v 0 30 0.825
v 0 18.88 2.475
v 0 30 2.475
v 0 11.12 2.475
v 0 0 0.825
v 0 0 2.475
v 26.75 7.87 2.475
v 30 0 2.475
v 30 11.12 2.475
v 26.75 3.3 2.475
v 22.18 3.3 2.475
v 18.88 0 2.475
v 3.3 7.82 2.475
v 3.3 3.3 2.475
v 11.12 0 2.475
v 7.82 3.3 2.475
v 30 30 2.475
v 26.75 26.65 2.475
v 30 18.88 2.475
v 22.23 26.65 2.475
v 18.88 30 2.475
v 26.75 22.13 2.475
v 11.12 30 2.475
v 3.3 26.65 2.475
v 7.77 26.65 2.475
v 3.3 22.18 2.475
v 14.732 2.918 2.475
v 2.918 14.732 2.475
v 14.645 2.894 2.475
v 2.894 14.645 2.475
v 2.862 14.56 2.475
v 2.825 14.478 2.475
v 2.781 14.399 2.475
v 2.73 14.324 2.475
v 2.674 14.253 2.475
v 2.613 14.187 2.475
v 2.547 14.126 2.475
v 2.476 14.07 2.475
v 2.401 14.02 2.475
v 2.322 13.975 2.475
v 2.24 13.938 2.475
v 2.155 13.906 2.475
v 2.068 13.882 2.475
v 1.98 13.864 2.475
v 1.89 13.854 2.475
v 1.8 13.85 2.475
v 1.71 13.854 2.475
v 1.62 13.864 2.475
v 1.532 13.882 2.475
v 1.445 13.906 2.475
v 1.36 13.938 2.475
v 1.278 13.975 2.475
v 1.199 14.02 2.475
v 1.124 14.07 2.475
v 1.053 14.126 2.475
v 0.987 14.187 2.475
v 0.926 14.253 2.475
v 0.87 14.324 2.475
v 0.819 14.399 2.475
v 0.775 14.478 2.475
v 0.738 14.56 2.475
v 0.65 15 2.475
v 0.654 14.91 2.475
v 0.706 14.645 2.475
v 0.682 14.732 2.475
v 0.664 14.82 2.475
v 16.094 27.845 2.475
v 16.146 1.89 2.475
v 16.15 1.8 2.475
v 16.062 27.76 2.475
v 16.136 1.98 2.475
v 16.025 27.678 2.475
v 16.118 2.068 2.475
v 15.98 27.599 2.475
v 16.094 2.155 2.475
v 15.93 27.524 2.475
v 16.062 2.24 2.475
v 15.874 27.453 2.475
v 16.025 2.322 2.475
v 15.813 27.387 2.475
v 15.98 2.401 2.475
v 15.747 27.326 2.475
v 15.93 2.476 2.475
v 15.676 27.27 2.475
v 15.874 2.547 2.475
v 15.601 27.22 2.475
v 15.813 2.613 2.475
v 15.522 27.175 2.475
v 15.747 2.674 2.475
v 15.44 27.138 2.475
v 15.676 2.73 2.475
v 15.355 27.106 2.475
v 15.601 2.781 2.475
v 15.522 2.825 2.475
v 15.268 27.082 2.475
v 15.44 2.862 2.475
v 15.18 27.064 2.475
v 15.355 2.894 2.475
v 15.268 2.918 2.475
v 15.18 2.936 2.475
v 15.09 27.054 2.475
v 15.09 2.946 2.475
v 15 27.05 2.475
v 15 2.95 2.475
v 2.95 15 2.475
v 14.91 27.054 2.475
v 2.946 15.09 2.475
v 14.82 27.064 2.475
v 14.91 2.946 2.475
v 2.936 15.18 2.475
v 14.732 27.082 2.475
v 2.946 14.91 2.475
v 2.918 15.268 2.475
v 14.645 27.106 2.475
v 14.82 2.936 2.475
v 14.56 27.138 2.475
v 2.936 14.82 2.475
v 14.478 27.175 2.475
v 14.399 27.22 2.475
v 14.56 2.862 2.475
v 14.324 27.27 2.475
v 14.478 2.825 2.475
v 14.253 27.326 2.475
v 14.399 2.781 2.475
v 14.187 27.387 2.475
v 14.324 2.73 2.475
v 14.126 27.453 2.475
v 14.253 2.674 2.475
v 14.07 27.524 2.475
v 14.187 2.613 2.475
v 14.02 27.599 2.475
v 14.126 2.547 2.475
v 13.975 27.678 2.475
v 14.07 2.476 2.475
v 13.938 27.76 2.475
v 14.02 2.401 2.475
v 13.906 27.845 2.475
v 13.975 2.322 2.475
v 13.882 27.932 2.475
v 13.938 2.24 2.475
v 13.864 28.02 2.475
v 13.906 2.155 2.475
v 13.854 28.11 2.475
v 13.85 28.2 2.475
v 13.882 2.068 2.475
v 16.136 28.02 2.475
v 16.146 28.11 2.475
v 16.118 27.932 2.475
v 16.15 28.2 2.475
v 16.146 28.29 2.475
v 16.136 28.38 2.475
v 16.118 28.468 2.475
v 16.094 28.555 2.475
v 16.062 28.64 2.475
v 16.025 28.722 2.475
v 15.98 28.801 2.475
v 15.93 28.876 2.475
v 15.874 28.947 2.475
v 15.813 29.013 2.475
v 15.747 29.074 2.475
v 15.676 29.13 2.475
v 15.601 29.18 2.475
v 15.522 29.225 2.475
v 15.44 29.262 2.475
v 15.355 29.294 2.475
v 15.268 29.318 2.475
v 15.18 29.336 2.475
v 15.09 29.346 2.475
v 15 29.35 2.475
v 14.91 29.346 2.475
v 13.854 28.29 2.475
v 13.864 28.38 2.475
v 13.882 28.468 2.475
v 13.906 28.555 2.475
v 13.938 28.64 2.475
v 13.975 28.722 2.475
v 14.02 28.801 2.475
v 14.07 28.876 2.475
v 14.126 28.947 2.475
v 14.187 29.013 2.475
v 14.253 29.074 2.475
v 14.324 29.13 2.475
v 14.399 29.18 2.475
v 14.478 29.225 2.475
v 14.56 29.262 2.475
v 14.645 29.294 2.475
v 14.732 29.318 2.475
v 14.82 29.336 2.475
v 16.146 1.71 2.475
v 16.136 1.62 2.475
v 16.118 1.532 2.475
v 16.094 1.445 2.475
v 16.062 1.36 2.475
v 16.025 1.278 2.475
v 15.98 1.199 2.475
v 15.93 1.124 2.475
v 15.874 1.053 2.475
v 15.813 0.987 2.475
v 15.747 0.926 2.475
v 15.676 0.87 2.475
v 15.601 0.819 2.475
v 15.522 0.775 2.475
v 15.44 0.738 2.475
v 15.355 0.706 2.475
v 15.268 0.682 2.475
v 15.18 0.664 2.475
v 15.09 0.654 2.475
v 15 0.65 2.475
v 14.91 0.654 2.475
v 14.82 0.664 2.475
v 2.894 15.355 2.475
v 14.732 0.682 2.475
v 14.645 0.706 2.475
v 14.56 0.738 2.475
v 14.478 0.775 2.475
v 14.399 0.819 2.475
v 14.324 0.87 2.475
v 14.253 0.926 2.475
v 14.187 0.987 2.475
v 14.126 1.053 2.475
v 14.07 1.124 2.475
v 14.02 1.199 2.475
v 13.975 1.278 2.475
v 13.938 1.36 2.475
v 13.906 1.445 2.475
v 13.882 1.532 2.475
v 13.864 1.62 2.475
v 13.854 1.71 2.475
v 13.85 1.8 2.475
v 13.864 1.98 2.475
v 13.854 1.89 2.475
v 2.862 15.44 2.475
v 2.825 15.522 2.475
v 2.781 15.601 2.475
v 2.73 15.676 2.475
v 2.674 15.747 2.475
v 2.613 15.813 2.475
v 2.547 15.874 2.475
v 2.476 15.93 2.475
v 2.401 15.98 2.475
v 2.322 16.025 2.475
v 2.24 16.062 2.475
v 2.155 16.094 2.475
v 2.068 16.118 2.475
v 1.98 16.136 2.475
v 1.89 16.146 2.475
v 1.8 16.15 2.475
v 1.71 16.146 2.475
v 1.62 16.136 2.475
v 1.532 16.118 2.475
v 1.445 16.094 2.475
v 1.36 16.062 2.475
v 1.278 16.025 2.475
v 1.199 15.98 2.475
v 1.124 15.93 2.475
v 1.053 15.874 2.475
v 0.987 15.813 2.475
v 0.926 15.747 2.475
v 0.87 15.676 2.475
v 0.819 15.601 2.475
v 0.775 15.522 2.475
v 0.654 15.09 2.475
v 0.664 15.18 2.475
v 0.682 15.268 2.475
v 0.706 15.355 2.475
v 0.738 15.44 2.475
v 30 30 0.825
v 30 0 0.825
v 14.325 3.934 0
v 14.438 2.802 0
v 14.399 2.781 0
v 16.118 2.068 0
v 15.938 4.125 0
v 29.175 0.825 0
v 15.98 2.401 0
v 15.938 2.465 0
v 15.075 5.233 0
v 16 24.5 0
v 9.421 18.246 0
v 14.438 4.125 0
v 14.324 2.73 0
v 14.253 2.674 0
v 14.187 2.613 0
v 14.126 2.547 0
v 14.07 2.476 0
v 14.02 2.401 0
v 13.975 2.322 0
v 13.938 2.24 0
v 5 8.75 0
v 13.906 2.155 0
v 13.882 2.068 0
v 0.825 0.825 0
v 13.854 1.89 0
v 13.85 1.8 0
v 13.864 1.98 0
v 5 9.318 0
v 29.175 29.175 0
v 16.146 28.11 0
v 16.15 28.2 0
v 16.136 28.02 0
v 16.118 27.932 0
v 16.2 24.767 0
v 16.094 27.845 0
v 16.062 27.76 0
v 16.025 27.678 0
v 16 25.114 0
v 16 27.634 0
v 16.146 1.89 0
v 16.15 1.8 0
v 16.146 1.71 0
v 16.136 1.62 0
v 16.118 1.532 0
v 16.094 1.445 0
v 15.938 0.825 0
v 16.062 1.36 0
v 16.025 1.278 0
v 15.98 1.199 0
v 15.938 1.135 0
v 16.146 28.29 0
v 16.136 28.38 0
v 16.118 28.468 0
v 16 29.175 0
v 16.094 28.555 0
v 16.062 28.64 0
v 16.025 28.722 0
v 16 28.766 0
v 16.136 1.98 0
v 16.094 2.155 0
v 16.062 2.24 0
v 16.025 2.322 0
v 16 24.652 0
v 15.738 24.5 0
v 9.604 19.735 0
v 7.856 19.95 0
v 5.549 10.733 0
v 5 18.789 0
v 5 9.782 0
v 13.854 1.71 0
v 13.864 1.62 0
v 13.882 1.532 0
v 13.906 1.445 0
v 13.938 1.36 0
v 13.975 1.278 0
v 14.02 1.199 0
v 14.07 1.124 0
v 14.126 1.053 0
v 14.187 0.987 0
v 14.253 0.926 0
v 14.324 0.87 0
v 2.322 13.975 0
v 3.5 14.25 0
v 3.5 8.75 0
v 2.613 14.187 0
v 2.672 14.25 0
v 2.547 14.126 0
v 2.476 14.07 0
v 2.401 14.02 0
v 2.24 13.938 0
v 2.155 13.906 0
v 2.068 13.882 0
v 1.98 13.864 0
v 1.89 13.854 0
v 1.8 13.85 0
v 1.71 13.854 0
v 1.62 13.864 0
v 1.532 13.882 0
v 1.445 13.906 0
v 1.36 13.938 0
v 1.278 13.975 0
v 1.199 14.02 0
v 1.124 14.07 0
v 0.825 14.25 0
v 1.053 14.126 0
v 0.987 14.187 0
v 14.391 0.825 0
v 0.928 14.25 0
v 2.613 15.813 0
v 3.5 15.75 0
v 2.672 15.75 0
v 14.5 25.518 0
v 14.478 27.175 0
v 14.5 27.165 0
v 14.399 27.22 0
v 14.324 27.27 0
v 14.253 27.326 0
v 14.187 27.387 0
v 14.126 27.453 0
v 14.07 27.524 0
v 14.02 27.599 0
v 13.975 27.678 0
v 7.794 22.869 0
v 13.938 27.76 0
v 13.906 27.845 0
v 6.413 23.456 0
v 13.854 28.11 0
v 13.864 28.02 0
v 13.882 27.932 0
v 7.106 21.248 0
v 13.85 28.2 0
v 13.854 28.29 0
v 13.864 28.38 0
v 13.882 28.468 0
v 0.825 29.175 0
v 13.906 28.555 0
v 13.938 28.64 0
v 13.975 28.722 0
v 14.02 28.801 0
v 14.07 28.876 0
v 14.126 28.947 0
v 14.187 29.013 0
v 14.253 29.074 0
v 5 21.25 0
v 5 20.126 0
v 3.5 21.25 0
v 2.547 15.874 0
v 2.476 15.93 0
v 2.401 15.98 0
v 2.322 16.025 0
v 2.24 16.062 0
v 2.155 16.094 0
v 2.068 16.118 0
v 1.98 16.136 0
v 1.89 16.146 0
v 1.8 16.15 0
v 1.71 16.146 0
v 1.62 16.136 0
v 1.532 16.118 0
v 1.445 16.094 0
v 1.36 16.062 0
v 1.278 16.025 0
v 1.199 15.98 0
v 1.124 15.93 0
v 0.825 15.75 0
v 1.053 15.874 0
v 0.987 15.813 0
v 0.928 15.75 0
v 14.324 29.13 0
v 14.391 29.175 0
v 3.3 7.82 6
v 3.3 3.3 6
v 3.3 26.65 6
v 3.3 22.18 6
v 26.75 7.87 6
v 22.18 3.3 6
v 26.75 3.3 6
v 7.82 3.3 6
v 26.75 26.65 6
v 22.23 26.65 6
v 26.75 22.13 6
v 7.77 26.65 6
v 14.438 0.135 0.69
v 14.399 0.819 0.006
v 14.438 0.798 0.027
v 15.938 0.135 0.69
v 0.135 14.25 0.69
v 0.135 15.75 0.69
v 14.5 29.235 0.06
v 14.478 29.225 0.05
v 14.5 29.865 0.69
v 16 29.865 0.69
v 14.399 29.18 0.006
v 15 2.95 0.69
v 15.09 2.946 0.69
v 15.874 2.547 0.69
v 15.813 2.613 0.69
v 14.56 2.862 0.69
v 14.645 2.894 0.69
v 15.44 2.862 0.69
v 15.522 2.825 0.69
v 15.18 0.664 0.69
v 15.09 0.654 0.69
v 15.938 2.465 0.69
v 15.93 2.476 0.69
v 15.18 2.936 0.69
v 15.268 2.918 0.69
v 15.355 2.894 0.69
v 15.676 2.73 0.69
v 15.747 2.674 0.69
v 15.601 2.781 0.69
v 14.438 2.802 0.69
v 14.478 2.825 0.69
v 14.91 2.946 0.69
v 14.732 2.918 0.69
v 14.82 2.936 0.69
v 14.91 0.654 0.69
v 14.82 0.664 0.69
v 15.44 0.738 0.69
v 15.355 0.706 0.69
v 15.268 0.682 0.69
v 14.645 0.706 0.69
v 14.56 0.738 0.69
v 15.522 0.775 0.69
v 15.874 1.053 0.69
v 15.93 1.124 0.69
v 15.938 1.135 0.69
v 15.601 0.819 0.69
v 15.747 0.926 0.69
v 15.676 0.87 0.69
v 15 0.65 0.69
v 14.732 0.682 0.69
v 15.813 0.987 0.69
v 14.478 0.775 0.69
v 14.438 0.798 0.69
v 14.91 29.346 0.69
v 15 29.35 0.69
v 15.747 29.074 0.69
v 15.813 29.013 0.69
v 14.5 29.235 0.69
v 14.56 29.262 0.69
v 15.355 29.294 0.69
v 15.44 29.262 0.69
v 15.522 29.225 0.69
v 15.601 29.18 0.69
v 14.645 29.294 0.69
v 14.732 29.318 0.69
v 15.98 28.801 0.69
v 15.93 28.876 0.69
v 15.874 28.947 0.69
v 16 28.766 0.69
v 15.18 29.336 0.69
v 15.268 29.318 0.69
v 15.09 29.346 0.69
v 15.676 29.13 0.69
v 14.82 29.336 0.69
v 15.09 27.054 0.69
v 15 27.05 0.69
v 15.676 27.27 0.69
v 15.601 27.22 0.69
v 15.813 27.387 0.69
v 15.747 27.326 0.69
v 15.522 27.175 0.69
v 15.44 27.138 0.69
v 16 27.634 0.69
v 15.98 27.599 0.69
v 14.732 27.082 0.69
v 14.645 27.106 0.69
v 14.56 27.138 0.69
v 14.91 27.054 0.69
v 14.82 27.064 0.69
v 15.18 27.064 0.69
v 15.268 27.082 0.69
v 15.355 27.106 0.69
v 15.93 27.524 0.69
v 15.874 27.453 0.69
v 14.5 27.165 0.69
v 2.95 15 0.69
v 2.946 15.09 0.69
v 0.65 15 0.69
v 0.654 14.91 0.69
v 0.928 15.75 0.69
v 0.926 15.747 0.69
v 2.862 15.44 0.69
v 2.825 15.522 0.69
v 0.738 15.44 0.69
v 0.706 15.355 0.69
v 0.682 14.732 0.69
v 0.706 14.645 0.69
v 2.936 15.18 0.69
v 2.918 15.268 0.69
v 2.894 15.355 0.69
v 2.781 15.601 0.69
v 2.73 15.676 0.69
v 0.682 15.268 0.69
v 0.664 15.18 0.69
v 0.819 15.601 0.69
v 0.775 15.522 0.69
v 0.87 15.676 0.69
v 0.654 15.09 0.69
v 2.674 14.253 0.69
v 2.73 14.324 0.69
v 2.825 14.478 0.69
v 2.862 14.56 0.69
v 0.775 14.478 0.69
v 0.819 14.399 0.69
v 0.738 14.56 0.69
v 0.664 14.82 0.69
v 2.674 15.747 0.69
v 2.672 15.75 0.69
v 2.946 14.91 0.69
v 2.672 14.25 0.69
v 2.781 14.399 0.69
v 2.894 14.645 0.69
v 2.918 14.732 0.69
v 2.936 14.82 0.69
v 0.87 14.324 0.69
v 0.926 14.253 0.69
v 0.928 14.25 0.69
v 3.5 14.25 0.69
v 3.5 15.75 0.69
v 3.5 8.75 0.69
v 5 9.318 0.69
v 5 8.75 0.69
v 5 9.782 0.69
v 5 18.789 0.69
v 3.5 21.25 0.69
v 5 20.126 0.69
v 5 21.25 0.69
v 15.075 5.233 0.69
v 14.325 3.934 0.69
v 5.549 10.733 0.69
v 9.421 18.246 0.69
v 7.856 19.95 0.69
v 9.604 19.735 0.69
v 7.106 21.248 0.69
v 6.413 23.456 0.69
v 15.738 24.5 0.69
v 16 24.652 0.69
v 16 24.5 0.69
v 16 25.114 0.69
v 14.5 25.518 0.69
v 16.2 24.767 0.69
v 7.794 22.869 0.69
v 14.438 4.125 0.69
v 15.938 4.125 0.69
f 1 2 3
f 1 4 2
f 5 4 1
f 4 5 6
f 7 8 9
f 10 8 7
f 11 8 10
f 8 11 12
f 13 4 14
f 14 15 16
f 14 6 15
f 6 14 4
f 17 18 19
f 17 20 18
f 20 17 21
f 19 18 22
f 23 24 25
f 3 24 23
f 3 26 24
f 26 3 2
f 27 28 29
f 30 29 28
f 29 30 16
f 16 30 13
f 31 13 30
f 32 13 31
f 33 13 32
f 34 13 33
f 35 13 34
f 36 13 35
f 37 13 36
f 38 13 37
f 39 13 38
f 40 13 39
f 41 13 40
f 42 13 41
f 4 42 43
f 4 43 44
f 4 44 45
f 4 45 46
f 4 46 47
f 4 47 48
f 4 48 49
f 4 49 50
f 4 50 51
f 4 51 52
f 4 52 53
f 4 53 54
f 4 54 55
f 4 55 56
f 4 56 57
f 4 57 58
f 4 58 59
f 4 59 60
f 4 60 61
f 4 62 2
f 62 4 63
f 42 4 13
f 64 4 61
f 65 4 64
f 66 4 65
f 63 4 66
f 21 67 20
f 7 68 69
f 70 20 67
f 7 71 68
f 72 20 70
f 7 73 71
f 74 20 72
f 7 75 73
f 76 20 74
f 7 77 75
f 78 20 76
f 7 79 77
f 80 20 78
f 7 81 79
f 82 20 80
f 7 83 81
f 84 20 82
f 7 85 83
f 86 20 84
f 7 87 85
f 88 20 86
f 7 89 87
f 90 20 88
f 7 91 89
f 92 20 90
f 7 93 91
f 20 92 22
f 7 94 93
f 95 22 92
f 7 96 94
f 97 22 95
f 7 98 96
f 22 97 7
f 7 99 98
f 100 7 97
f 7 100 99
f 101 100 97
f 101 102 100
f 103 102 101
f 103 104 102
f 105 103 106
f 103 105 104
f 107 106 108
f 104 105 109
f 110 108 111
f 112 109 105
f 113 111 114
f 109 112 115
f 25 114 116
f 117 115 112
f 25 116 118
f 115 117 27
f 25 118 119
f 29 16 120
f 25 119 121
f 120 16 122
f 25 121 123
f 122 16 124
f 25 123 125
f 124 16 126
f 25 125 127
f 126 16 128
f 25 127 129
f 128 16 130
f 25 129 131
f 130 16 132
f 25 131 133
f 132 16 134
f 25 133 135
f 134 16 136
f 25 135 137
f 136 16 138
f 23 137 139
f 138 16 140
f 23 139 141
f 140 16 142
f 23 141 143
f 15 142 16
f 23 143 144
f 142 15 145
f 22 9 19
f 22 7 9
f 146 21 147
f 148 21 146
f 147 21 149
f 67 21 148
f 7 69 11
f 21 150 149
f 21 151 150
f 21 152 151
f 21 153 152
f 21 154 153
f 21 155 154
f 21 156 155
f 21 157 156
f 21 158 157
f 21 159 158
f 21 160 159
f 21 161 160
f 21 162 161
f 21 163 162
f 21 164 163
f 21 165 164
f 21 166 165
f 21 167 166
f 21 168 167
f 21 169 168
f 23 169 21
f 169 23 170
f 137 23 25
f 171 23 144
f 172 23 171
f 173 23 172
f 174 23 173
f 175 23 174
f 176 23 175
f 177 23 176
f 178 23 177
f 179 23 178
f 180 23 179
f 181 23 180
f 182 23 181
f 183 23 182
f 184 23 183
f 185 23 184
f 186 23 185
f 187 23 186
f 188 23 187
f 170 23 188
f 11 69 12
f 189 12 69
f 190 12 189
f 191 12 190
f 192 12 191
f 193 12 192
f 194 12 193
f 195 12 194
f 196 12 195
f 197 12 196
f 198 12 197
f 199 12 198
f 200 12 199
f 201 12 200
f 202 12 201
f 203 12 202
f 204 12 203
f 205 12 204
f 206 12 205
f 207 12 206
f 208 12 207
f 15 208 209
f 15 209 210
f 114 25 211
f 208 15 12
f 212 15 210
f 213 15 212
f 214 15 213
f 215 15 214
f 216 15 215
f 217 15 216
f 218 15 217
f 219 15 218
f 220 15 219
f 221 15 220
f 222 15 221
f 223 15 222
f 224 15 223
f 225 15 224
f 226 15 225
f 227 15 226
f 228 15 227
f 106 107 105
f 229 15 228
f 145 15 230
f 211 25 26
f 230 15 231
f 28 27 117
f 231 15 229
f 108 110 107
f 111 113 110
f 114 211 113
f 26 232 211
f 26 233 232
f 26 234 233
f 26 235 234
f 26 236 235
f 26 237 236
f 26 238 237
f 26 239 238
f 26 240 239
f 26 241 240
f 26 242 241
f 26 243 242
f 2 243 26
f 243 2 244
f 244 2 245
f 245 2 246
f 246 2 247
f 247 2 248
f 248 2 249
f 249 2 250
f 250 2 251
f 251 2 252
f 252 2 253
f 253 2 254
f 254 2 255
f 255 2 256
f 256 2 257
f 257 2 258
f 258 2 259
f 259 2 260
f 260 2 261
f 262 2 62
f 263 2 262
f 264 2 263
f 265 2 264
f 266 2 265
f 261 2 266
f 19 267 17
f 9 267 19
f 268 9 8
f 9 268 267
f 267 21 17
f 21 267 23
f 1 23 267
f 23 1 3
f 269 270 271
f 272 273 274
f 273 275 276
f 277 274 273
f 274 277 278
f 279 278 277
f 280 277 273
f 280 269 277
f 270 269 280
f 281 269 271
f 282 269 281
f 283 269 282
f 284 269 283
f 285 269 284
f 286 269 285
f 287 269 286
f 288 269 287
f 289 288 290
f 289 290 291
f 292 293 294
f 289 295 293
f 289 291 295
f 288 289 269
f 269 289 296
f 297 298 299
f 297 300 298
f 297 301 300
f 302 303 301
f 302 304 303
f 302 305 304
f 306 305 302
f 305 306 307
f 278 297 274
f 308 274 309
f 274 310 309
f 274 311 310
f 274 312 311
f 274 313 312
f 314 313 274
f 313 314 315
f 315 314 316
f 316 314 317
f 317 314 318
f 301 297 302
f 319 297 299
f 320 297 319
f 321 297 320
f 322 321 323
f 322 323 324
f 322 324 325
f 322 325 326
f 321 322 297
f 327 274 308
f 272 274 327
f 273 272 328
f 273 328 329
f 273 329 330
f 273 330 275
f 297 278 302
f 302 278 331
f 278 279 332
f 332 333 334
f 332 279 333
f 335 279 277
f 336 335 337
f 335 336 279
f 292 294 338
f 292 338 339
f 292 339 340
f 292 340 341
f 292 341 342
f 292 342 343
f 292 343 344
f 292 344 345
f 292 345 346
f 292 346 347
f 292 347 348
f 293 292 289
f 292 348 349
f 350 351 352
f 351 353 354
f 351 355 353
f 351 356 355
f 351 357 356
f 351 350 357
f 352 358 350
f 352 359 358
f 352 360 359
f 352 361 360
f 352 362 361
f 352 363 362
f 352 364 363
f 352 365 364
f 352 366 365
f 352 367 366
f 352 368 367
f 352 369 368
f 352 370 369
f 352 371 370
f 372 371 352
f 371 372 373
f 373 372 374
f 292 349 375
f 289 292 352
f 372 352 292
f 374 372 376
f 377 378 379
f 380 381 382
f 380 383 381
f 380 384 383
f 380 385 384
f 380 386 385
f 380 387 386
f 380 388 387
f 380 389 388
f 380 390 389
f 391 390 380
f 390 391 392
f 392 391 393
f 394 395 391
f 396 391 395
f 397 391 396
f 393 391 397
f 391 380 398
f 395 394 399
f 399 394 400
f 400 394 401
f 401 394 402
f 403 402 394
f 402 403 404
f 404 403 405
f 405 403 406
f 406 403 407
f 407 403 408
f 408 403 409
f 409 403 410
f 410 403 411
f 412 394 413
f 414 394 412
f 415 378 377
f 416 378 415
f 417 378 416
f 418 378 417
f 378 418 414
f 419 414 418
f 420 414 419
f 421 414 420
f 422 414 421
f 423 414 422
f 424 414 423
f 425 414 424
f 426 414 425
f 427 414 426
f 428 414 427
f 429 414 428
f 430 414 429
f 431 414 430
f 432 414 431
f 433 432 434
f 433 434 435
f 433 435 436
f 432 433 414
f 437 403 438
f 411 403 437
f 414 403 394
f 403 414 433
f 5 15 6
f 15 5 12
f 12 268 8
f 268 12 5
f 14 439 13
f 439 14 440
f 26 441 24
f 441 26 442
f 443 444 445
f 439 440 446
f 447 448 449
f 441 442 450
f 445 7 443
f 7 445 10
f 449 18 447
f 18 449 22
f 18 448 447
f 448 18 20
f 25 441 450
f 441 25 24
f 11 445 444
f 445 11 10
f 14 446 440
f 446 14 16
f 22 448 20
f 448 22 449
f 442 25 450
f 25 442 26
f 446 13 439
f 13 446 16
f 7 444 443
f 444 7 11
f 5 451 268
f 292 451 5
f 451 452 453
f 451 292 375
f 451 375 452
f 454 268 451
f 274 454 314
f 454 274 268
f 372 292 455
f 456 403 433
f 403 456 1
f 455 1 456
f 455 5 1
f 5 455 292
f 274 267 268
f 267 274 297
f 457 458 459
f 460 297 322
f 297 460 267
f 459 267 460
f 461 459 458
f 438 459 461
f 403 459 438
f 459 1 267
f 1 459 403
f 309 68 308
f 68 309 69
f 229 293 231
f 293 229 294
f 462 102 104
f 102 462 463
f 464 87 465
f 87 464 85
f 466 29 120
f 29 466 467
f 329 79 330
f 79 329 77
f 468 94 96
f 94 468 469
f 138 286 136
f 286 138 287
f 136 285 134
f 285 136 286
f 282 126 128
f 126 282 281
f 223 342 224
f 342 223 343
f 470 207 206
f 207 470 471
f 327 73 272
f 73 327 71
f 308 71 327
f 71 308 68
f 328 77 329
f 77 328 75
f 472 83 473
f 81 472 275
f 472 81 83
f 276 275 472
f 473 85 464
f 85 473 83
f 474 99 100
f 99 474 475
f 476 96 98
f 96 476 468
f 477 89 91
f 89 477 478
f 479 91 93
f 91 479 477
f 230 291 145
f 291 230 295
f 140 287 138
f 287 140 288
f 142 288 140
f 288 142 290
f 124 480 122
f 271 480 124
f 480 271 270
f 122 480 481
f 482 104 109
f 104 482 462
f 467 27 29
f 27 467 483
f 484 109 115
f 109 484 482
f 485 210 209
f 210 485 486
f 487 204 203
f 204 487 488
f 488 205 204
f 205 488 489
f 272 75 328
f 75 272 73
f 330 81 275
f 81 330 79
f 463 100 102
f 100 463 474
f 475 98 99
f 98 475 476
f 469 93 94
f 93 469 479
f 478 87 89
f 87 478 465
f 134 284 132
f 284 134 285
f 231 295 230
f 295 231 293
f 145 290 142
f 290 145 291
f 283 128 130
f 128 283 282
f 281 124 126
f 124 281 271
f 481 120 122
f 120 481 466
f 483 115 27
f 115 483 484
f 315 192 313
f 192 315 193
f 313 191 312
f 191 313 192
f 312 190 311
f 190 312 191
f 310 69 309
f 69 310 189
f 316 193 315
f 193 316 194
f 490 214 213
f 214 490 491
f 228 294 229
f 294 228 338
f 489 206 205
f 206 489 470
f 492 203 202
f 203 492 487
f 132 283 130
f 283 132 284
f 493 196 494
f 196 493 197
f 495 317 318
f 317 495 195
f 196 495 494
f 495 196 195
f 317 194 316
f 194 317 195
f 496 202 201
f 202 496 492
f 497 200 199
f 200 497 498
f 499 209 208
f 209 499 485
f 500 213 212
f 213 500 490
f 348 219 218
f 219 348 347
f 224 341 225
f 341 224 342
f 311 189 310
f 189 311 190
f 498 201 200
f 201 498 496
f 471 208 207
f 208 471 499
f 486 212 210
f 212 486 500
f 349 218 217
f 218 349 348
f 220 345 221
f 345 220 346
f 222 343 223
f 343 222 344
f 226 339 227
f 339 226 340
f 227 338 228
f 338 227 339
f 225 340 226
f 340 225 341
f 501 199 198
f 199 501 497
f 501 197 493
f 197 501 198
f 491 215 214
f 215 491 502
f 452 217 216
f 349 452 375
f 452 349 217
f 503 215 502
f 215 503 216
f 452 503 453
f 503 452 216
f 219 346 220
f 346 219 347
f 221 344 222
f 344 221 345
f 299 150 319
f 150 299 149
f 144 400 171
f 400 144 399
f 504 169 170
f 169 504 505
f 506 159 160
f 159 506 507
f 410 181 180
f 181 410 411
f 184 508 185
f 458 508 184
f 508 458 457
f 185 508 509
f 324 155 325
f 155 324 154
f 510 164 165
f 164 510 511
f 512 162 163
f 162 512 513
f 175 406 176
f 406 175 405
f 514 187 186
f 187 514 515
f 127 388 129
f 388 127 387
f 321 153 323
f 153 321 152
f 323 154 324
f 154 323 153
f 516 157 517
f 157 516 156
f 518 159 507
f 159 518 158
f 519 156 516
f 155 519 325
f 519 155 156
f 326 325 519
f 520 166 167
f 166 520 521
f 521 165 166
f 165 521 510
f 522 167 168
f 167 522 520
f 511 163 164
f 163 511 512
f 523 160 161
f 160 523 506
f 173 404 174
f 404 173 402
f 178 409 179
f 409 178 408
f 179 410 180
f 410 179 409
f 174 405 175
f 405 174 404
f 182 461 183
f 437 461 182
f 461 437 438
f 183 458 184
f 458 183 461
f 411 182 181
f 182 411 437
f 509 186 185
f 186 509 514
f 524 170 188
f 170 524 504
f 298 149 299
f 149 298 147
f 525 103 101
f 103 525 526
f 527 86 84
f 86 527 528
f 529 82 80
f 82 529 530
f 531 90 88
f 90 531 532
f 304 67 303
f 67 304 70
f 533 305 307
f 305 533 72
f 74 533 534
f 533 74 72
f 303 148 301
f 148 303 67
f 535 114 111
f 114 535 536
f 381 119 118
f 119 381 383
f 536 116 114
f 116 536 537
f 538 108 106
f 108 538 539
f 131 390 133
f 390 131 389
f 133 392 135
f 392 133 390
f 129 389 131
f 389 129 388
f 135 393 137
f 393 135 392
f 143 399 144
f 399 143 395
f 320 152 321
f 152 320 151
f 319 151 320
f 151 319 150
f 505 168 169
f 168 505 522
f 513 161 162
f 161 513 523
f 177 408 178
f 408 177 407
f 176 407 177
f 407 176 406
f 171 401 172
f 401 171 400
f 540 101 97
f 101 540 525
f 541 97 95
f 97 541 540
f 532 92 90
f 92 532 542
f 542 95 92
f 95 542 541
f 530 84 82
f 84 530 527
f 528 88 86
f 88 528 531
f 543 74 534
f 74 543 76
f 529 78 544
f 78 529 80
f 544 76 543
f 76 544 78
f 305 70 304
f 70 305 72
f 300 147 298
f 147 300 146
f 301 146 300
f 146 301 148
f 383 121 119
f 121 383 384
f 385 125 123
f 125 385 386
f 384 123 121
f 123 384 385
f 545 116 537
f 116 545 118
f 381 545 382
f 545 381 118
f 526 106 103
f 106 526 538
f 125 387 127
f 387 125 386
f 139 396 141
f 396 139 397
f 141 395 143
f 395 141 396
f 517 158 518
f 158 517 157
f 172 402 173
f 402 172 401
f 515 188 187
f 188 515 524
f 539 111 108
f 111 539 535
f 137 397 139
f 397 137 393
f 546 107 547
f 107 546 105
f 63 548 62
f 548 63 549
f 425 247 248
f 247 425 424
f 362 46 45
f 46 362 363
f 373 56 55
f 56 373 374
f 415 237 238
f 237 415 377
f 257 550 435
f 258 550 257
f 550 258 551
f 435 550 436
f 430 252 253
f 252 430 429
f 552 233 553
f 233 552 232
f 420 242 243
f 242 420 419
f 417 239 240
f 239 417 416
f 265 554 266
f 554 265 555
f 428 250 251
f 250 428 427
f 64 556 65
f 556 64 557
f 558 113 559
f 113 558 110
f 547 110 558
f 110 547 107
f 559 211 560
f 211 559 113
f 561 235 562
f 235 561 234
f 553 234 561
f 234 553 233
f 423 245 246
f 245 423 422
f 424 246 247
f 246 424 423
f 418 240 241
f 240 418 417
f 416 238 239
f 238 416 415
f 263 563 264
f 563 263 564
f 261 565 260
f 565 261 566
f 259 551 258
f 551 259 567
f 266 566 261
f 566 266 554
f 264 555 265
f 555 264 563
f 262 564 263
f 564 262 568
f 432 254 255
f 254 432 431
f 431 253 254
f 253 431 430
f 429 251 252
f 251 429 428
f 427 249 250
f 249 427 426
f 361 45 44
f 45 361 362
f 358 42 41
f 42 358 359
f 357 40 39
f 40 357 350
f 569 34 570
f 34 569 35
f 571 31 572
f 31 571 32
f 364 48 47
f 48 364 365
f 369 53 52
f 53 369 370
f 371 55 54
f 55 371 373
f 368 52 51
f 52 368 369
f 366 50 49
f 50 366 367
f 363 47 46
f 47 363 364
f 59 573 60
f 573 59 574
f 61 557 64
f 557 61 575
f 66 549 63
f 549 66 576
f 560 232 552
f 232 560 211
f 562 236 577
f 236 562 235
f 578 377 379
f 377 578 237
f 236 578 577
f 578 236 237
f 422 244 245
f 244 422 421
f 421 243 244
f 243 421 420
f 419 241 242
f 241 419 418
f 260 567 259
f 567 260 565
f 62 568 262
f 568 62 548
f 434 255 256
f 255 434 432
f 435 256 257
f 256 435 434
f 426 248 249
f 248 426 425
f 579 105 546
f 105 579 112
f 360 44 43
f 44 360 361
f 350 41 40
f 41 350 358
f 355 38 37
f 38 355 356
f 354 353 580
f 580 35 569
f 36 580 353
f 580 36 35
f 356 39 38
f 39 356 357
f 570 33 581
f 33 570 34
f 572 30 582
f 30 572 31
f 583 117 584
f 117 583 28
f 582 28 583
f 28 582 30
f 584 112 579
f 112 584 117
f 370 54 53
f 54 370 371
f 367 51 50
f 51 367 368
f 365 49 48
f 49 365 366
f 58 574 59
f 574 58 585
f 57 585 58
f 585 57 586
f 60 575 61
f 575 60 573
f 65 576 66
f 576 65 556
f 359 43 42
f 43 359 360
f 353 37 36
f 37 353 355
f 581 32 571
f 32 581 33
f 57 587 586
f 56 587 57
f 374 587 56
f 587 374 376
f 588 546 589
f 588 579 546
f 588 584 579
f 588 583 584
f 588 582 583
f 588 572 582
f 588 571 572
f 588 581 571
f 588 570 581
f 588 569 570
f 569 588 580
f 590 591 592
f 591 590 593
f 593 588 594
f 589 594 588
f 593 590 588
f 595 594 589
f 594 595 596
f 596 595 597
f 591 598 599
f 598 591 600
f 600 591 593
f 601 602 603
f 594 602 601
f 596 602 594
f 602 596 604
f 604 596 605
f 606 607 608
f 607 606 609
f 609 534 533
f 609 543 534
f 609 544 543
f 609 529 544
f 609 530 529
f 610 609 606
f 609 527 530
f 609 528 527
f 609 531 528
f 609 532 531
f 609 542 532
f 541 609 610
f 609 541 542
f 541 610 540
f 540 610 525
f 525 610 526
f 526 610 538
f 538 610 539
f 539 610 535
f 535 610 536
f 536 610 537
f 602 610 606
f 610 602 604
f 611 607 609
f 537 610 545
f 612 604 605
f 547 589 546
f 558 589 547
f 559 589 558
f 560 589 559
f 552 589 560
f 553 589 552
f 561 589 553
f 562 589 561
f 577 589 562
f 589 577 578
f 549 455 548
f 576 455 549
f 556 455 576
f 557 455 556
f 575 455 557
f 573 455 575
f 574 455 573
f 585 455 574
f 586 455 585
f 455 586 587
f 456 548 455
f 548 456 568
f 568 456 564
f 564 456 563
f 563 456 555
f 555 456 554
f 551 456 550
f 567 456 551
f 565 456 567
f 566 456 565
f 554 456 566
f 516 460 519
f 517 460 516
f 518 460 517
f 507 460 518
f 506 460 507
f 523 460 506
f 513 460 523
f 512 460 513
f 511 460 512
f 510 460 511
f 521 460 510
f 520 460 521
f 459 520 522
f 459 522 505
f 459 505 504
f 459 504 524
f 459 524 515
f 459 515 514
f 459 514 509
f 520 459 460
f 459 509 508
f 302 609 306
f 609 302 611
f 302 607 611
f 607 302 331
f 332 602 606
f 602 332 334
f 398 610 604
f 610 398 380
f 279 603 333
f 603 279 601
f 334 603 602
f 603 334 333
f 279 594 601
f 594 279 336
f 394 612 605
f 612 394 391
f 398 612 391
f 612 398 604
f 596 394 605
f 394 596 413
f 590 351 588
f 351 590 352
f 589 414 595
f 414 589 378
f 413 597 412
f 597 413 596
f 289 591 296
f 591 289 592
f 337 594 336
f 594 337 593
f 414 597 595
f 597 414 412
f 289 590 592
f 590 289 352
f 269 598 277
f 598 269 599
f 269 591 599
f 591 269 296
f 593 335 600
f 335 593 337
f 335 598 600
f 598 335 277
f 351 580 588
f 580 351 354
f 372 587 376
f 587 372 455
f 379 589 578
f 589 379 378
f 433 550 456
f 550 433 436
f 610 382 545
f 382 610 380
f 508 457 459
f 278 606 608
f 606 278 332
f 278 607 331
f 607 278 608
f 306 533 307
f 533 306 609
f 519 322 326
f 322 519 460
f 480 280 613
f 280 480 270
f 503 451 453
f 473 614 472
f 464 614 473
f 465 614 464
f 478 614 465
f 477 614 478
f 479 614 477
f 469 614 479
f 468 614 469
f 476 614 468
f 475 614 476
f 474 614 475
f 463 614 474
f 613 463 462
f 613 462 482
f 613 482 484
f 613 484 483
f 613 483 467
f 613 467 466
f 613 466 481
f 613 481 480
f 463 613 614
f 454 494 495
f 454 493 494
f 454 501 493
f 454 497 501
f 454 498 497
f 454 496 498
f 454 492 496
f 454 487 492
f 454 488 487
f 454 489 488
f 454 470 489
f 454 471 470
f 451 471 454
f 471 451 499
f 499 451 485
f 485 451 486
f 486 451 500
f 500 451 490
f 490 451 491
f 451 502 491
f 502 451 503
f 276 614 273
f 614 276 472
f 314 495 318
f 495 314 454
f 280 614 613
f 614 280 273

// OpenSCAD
// file: sym_arrow.scad
module arrow(thickness, length, size, height)
{
    translate([thickness,-thickness/2])cube([length-thickness, thickness, height]);
    rotate([0,0,37])translate([0,-3*thickness/4])cube([size, thickness, height]);
    rotate([0,0,-37])translate([0,-thickness/4])cube([size, thickness, height]);
}
// file: sym_ring.scad
module ring(radius, thickness, height)
{
    difference()
    {
        cylinder(r=radius, h=height, $fn=64);
        translate([0,0,-thickness/2])cylinder(r=(radius-thickness), h=(height+thickness), $fn=64);
    }
}

ring(30, 1, 1);
// file: settings.scad
cube_width=30;
cube_height=16;
cube_thickness=3.3;

cap_width=30;
cap_height=6;
cap_thickness=3.3;

glyph_depth=0.7;
glyph_thickness=1.5;

photo_resitor_hole_r = 3.1;
spring_contact_hole_r = 3.35;
// file: sym_transistor_pnp.scad
use <sym_ring.scad>
use <sym_arrow.scad>
use <sym_ring.scad>

module transistor_pnp(diameter, thickness, height)
{
    //ring(0.5*diameter, thickness, height);
    
    //base
    translate([-diameter/4, -diameter/4, 0]) cube([thickness, diameter/2, height]);
    
    //emitter
    translate([-diameter/4+thickness, -diameter/6, 0])rotate([0,0,-30])arrow(thickness, diameter/2, 3*thickness, height);
    
    //collector
    //translate([1.6*diameter/8, diameter/2.5, 0])rotate([0,0,-150])arrow(thickness, 4*diameter/8, 0, height);
    translate([-diameter/4+thickness/4, diameter/6, 0])rotate([0,0, 30])arrow(thickness, 4*diameter/8, 0, height);
    
    //base wire
    translate([-diameter/4+thickness, 0,0]) rotate([0,0,180])arrow(thickness, diameter/3, 0, height);
    
    //emitter wire
    translate([diameter/4,-diameter/2+2*thickness,0])rotate([0,0,180])cube([thickness, diameter/3, height]);
    
    // collector wire
    translate([3*diameter/16, 1.5*diameter/4+thickness])cube([thickness, diameter/3, height]);
}

transistor_pnp(30, 1.5, 0.7);
// file: cap_1x1.scad
include <settings.scad>

module cap_1x1(width, height, thickness, holes_mask)
{
    width1=width-thickness;
    difference()
    {
        union()
        {
            cube([width, width, thickness*3/4]);
            translate([thickness,thickness,0])cube([width-2*thickness, width-2*thickness, height]);
        }
        union()
        {
            translate([width/2,width/2,0])rotate([0,0,45])translate([-width1/2,-width1/2,thickness*3/4]) cube([width1,width1,height]);
                        //corners
            translate([0,0.25*thickness,0])rotate([45,0,0]) translate([-0.5*width, -width, -0.5*height]) cube([2*width, width, 2*height]);
            translate([0.25*thickness,0,0]) rotate([0,-45,0]) translate([-width, -0.5*width, -0.5*height]) cube([width, 2*width, 2*height]);
            translate([width-0.25*thickness,0,0]) rotate([0,45,0]) translate([0, 0, -0.5*height]) cube([width, 2*width, 2*height]);
            translate([0,width-0.25*thickness,0]) rotate([-45,0,0]) translate([-0.5*width, 0, -0.5*height]) cube([2*width, width, 2*height]);
            
            if (holes_mask >= 8)
            {
                translate([width/2, thickness-1.5, -0.5]) cylinder(r=1.15, h=height*1.5, $fn=80);
            }
            if ((holes_mask%8) >= 4)
            {
                translate([width/2, width-thickness+1.5, -0.5]) cylinder(r=1.15, h=height*1.5, $fn=80);
            }
            if ((holes_mask%4)>= 2)
            {
                translate([thickness-1.5, width/2, -0.5]) cylinder(r=1.15, h=height*1.5, $fn=80);
            }
            if (holes_mask%2 >= 1)
            {
                translate([width-thickness+1.5, width/2, -0.5]) cylinder(r=1.15, h=height*1.5, $fn=80);
            }
        }
    }
}

cap_1x1(cap_width, cap_height, cap_thickness, 9);
//ring(10,1,1);
//arrow(1, 20, 3, 1);
//transistor_npn(30, 1, 1);
// main file
use <cap_1x1.scad>
use <sym_transistor_pnp.scad>
include <settings.scad>

module cap_1x1_pnp_transistor(width, height, thickness)
{
    difference()
    {
        cap_1x1(width, height, thickness, 14);
        translate([3*width/8-1.5,width/2,-0.01]) mirror([0,1,0]) transistor_pnp(25, glyph_thickness, glyph_depth);
    }
}

cap_1x1_pnp_transistor(cap_width, cap_height, cap_thickness);
